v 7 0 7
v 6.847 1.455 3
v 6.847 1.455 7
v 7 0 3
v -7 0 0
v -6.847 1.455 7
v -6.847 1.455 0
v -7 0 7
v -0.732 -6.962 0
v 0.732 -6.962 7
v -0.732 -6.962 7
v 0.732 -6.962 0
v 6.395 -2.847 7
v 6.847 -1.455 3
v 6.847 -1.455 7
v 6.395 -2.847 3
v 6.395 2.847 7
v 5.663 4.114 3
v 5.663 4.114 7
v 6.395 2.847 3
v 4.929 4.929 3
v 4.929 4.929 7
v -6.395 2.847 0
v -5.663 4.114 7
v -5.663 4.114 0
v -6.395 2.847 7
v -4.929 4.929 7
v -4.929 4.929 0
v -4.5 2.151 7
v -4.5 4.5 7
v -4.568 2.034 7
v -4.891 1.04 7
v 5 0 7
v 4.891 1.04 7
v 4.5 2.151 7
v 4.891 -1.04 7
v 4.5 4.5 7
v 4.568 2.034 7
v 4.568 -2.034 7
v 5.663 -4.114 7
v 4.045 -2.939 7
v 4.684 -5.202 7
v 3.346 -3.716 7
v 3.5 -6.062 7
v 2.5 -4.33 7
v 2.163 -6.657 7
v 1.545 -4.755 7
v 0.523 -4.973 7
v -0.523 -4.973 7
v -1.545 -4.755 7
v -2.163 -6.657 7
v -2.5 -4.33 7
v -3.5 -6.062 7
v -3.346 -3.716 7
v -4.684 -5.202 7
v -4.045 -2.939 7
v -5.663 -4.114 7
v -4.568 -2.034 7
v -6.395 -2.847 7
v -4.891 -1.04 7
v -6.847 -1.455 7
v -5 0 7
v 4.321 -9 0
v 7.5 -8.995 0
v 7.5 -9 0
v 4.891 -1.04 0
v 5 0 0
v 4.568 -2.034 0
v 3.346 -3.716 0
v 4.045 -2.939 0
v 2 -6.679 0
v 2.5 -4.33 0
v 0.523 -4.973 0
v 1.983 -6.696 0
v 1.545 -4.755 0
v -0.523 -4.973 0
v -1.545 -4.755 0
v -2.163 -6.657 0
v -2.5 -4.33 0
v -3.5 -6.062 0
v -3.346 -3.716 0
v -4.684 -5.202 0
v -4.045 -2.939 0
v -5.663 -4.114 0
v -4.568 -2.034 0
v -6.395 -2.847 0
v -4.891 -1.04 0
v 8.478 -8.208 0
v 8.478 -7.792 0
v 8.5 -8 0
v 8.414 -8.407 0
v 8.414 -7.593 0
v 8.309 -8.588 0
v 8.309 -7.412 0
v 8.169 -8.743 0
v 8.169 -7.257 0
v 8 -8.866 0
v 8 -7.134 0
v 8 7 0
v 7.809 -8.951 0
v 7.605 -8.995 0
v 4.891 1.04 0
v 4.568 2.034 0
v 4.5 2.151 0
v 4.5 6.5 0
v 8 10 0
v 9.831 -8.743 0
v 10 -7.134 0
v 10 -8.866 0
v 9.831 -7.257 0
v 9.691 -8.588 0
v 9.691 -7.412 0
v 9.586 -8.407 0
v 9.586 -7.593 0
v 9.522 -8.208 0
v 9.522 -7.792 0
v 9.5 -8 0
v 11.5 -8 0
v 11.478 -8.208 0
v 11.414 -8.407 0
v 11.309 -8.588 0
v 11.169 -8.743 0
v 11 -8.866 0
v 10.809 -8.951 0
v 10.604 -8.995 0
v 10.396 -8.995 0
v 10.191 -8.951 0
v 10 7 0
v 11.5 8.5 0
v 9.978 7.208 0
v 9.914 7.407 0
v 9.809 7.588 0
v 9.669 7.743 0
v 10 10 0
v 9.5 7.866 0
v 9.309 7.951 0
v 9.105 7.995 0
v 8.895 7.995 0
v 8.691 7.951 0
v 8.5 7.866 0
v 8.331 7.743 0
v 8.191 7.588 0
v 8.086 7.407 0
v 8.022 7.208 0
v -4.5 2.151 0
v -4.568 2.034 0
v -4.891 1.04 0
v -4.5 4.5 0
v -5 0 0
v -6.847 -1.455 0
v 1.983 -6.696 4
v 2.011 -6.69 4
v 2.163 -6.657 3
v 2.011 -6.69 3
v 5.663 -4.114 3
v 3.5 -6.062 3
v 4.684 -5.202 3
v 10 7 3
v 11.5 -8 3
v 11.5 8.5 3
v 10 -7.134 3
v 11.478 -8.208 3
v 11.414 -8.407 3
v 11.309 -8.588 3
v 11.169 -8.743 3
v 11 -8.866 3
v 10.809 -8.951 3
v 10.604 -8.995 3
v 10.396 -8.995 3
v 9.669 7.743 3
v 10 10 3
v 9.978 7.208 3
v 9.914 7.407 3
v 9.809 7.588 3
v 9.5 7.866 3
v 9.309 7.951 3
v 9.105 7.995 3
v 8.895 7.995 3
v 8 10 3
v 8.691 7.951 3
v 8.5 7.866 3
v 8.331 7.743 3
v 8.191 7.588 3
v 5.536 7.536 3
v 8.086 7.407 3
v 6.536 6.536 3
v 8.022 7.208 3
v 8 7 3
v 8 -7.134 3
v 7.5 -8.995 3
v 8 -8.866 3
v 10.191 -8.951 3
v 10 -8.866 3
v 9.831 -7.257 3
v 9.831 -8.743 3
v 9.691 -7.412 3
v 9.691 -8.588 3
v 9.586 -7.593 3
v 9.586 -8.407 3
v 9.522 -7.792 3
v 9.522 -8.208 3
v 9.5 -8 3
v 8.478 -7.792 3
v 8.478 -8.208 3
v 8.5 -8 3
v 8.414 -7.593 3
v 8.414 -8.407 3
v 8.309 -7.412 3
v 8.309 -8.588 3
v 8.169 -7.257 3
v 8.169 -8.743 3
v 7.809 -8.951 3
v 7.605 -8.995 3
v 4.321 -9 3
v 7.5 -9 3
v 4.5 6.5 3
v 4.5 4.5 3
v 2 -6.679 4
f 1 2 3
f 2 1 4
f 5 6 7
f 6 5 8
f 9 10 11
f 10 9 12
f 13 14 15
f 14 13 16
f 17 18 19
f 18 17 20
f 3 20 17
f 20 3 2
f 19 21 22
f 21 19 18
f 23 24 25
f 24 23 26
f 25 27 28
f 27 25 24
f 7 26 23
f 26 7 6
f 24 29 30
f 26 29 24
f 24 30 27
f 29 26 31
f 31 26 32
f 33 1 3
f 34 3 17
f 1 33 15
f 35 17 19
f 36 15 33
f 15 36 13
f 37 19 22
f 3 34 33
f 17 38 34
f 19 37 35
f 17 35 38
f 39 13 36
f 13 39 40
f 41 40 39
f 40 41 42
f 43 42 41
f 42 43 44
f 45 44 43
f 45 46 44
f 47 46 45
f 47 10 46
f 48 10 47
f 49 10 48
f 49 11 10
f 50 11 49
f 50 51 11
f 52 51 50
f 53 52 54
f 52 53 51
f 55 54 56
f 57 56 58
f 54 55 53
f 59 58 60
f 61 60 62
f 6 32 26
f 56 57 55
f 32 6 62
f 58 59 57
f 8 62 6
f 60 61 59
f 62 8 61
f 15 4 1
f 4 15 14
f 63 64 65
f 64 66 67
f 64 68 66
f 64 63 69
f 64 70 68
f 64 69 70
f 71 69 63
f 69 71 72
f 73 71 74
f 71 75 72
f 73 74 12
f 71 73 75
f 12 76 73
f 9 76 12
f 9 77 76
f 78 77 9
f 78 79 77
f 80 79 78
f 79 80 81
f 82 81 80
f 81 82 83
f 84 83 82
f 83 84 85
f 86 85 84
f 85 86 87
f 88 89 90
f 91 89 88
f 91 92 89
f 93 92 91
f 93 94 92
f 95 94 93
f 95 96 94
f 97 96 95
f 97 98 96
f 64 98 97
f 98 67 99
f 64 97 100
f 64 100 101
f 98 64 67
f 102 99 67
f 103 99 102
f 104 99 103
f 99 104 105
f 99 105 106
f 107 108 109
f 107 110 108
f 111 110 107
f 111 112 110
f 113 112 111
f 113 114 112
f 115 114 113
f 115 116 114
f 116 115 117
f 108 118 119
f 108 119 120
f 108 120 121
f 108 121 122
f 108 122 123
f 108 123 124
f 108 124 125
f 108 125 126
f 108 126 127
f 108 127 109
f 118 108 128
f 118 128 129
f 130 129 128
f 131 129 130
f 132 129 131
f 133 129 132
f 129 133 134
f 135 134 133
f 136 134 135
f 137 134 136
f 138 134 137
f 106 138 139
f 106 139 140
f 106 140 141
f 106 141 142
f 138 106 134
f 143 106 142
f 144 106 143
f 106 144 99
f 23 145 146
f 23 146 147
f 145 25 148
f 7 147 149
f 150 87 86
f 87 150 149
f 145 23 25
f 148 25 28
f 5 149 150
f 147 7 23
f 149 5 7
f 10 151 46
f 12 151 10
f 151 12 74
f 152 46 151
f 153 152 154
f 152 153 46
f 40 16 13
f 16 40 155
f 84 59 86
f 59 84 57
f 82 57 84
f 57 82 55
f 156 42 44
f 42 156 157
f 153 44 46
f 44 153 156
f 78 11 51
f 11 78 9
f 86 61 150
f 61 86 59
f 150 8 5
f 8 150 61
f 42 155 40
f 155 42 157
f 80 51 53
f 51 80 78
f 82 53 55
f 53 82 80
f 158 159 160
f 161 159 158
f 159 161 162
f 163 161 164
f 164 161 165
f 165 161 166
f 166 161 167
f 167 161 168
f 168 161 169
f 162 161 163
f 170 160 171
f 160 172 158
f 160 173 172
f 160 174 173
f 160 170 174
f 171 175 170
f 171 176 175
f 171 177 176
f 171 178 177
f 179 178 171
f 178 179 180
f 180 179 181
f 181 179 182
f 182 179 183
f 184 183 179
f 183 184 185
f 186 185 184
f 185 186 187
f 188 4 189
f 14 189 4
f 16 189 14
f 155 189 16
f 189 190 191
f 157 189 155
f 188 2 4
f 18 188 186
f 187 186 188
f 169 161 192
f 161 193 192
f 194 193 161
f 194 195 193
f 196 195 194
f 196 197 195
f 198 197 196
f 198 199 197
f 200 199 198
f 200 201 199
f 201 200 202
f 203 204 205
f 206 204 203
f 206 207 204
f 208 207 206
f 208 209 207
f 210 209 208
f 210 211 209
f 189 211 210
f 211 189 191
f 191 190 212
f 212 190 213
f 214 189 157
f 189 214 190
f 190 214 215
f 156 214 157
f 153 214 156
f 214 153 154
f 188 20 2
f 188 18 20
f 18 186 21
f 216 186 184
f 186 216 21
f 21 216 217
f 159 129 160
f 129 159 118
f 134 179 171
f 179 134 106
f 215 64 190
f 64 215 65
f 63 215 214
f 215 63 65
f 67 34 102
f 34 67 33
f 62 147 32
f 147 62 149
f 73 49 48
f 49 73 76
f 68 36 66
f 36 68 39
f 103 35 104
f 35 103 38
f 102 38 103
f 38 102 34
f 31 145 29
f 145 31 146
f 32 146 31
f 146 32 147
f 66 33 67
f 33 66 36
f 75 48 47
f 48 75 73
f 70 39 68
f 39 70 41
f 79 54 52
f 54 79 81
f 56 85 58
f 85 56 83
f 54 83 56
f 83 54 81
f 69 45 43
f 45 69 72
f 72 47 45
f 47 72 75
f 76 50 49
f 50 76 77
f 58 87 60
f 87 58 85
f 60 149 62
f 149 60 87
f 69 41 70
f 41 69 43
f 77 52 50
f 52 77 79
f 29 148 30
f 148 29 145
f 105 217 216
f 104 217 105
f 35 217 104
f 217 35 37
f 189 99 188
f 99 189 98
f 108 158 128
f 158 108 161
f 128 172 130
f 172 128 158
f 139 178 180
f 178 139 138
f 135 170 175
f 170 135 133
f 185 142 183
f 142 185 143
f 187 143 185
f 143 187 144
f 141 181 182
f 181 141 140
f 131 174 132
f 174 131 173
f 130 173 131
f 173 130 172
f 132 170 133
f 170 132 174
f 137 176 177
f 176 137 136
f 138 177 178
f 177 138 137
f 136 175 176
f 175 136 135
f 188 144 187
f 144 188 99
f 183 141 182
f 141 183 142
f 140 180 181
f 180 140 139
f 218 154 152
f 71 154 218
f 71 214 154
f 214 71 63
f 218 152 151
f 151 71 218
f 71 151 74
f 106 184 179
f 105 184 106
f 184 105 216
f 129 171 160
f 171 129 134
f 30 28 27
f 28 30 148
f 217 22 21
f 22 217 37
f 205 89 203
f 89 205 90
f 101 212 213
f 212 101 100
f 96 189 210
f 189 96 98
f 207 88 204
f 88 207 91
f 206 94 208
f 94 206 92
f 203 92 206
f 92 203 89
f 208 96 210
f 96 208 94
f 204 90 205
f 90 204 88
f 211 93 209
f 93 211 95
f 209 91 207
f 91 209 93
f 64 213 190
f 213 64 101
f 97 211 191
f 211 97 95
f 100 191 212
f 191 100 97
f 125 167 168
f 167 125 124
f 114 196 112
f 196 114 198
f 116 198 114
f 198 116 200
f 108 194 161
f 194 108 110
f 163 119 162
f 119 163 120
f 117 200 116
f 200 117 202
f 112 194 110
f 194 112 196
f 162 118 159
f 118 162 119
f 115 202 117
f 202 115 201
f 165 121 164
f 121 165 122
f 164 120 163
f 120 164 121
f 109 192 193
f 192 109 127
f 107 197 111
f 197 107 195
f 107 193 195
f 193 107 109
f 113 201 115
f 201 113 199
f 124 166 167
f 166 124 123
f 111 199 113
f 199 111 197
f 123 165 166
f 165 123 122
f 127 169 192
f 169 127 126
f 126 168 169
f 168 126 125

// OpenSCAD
// PRUSA iteration3
// LCD cable clip
// GNU GPL v3
// Josef Průša <iam@josefprusa.cz> and contributors
// http://www.reprap.org/wiki/Prusa_Mendel
// http://prusamendel.org

// body
difference(){
    union(){
    cylinder(r=7,h = 7, $fn=30);
    translate([2,-8,0]) cube([9.5,18,3]);
    translate([2,-9,0]) cube([5.5,5,3]);
    }

// rod cutout    
translate([0,0,-1]) cylinder(r=5,h = 10, $fn=30);
translate([-4.5,0,-5]) cube([9,15,15]);

// LCD cable cut
translate([8,-12,-1]) cube([2,19,5]);
translate([9,7,-1]) cylinder(r=1,h = 5, $fn=30);
    
    //corners
    translate([2,-13.75,-1]) rotate([0,0,45]) cube([5,5,5]);    
    translate([4,6,-1]) rotate([0,0,45]) cube([10,10,5]);    
    translate([14,6,-1]) rotate([0,0,45]) cube([10,10,5]);    
    translate([-3,3,-1]) rotate([0,0,45]) cube([5,5,10]);    
    translate([3,3,3]) rotate([0,0,45]) cube([5,5,10]);    
}

// LCD cable cut ends
translate([7.5,-8,0]) cylinder(r=1,h = 3, $fn=30);
translate([10.5,-8,0]) cylinder(r=1,h = 3, $fn=30);
